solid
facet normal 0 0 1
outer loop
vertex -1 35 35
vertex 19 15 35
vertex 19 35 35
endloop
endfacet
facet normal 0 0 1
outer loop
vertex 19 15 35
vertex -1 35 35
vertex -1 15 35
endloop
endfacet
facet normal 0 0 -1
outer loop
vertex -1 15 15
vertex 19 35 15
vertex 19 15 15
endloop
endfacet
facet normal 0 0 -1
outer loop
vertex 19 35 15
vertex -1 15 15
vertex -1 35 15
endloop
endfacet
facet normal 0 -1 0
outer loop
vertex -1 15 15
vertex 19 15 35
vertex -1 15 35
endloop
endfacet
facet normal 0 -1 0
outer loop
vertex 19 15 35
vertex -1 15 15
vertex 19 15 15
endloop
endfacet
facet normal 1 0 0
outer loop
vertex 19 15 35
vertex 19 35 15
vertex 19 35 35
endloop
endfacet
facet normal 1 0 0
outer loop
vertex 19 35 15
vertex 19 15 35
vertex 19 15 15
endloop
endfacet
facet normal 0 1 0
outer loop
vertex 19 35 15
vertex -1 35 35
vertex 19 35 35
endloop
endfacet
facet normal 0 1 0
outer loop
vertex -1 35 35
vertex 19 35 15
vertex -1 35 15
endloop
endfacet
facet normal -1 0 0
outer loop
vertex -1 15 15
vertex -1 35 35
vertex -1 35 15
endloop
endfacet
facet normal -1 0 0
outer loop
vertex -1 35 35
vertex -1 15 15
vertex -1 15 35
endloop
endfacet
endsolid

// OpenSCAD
module CubeModifier(){
    translate([-1, 15,15]){
      cube([20, 20, 20]);  
    }
}

CubeModifier();
